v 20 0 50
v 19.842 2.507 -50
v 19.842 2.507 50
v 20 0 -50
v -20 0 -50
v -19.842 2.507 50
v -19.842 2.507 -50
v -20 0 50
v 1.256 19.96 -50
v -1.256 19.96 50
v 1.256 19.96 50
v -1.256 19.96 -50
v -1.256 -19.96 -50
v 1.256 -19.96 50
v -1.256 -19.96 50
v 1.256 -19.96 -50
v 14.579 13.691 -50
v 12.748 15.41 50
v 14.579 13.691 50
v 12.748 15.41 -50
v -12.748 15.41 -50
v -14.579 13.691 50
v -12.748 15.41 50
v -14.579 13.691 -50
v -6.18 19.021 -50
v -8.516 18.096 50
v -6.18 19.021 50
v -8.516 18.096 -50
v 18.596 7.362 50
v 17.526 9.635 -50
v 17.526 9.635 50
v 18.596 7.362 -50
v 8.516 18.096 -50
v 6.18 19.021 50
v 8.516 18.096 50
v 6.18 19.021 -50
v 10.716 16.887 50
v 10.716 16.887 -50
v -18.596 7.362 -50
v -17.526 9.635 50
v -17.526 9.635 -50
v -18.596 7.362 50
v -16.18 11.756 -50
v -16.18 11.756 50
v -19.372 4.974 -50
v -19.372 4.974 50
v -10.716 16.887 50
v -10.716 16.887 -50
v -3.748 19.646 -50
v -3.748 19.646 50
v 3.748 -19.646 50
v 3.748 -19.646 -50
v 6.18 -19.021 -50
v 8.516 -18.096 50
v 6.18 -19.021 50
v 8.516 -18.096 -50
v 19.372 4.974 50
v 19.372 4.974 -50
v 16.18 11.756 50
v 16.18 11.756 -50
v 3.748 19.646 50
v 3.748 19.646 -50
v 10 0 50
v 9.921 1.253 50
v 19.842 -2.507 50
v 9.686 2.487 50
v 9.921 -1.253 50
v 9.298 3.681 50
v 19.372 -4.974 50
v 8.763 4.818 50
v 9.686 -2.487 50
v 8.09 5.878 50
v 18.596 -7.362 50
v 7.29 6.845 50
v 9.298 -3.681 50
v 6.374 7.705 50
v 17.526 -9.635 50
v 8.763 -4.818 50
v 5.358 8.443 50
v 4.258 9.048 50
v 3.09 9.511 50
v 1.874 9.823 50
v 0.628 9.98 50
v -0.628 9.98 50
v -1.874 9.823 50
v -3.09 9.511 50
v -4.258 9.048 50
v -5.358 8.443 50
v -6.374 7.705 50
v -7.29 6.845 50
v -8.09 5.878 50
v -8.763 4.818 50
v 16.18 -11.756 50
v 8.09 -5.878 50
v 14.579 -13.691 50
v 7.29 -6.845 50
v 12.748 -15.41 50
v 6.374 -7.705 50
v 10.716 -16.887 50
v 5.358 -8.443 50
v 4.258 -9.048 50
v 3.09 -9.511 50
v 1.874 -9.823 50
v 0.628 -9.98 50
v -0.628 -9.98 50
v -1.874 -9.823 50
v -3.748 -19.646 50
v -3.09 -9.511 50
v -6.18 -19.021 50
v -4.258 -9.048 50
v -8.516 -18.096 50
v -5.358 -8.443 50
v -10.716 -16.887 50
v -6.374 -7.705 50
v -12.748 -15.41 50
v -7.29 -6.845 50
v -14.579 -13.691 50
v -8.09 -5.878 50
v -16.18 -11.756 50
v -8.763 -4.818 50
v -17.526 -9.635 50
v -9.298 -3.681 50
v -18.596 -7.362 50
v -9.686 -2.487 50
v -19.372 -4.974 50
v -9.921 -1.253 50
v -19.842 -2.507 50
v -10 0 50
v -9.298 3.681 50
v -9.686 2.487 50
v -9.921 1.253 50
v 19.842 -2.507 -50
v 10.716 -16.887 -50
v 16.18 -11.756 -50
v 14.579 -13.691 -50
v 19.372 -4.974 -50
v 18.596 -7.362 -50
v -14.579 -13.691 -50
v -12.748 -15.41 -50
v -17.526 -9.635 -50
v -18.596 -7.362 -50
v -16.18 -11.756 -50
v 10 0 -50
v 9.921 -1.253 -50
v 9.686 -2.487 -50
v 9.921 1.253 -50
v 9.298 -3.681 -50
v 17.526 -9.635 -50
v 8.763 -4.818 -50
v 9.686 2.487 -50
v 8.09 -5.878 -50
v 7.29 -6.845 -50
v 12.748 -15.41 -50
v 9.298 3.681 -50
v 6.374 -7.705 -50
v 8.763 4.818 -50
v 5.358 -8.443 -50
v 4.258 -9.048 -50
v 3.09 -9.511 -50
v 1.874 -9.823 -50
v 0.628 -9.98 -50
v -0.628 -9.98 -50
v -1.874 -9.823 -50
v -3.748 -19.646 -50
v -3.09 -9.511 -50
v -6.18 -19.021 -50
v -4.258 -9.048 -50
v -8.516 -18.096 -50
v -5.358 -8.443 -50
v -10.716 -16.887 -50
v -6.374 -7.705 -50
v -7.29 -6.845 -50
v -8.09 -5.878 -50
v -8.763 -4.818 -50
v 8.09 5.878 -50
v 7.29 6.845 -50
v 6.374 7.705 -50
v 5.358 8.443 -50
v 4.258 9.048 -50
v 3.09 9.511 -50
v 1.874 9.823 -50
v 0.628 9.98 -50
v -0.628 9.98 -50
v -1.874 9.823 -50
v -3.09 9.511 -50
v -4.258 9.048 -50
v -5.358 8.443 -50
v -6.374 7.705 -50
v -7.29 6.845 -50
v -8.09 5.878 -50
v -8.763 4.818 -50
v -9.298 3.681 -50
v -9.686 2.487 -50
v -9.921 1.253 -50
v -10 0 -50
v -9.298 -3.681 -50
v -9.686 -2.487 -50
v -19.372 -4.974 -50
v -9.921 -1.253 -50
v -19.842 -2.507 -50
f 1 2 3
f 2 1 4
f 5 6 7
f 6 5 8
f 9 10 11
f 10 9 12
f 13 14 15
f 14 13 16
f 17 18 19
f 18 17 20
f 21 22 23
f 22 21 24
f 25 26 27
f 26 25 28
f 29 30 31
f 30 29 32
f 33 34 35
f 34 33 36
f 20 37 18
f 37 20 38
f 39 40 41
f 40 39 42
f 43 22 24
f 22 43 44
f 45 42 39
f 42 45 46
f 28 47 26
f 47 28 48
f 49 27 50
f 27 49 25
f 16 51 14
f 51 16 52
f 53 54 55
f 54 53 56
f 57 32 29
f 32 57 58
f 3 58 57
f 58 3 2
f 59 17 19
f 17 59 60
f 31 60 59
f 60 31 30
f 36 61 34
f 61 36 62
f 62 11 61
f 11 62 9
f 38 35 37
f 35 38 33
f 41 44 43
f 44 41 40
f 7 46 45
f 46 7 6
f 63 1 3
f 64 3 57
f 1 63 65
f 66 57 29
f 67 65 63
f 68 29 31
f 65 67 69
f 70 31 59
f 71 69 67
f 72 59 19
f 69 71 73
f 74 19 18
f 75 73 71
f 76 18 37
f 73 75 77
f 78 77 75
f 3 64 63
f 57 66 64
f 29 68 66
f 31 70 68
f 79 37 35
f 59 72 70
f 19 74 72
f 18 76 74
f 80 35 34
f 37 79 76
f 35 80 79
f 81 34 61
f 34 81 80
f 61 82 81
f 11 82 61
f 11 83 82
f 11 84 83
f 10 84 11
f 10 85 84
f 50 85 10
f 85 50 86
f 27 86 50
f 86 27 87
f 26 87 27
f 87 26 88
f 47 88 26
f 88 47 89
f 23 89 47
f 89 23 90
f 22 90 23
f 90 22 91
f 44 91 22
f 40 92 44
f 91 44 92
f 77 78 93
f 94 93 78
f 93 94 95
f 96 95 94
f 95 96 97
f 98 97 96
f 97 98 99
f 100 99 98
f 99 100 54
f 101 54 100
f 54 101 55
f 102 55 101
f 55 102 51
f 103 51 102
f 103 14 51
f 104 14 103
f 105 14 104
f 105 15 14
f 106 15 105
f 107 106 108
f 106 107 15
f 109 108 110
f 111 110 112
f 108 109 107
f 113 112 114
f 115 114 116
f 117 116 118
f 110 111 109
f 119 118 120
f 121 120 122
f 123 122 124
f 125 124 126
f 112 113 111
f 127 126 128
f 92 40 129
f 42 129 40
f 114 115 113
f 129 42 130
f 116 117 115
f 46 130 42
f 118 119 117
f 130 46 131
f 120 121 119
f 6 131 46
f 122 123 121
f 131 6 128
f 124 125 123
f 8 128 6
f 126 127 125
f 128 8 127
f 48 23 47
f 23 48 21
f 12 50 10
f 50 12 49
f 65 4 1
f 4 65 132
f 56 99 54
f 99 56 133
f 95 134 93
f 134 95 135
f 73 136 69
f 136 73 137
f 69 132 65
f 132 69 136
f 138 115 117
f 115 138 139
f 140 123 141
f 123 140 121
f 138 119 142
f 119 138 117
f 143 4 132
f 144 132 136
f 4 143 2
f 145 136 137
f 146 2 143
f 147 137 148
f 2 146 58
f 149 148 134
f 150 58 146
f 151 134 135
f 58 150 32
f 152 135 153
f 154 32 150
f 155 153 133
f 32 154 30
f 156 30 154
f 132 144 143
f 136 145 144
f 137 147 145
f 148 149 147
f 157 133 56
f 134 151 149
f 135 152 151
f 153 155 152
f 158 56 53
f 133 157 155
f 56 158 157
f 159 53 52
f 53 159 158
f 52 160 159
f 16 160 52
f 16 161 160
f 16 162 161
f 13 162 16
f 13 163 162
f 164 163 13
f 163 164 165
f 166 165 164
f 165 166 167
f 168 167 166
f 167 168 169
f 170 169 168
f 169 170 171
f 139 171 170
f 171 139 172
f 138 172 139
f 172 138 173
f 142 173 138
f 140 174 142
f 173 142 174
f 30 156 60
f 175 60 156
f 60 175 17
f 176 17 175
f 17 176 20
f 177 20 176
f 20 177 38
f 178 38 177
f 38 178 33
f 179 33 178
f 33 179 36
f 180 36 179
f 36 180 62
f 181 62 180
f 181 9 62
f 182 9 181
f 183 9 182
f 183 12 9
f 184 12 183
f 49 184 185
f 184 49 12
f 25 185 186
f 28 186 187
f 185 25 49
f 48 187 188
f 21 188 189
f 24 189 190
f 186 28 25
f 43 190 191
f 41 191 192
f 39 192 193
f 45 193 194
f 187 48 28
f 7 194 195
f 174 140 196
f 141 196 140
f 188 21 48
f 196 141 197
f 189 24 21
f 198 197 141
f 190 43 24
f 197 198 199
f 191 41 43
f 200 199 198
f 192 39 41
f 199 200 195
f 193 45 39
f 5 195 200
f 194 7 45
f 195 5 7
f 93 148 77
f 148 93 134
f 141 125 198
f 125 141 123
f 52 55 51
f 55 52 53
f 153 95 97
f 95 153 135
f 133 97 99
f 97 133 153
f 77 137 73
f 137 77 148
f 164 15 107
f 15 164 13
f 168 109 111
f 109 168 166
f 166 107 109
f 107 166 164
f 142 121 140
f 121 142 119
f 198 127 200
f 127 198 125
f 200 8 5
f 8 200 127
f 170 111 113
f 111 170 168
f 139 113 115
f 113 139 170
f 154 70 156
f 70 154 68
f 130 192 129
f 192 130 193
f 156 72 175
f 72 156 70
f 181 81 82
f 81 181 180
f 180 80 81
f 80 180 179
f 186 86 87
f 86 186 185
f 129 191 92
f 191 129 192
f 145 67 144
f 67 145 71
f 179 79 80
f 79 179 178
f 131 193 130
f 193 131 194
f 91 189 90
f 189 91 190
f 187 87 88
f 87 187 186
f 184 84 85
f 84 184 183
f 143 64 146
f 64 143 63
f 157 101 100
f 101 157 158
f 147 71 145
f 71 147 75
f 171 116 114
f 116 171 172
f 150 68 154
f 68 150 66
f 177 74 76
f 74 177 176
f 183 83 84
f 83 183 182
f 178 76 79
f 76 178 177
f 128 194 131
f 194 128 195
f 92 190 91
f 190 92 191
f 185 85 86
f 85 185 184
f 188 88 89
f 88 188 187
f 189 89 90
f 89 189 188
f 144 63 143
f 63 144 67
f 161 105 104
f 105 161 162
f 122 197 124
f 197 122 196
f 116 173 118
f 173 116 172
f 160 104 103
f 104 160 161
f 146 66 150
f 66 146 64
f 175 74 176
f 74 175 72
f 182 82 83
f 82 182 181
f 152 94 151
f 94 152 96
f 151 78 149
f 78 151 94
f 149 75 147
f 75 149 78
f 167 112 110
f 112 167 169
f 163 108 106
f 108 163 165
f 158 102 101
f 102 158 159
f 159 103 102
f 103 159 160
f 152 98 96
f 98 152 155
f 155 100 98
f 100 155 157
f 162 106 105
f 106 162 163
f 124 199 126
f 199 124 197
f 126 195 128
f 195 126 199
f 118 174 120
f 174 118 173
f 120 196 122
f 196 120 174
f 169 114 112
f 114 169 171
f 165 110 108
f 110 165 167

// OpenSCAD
$fn = 50;


difference() {
	union() {
		translate(v = [0, 0, -50.0000000000]) {
			cylinder(h = 100, r = 20.0000000000);
		}
	}
	union() {
		translate(v = [0, 0, -100.0000000000]) {
			cylinder(h = 200, r = 10);
		}
	}
}
